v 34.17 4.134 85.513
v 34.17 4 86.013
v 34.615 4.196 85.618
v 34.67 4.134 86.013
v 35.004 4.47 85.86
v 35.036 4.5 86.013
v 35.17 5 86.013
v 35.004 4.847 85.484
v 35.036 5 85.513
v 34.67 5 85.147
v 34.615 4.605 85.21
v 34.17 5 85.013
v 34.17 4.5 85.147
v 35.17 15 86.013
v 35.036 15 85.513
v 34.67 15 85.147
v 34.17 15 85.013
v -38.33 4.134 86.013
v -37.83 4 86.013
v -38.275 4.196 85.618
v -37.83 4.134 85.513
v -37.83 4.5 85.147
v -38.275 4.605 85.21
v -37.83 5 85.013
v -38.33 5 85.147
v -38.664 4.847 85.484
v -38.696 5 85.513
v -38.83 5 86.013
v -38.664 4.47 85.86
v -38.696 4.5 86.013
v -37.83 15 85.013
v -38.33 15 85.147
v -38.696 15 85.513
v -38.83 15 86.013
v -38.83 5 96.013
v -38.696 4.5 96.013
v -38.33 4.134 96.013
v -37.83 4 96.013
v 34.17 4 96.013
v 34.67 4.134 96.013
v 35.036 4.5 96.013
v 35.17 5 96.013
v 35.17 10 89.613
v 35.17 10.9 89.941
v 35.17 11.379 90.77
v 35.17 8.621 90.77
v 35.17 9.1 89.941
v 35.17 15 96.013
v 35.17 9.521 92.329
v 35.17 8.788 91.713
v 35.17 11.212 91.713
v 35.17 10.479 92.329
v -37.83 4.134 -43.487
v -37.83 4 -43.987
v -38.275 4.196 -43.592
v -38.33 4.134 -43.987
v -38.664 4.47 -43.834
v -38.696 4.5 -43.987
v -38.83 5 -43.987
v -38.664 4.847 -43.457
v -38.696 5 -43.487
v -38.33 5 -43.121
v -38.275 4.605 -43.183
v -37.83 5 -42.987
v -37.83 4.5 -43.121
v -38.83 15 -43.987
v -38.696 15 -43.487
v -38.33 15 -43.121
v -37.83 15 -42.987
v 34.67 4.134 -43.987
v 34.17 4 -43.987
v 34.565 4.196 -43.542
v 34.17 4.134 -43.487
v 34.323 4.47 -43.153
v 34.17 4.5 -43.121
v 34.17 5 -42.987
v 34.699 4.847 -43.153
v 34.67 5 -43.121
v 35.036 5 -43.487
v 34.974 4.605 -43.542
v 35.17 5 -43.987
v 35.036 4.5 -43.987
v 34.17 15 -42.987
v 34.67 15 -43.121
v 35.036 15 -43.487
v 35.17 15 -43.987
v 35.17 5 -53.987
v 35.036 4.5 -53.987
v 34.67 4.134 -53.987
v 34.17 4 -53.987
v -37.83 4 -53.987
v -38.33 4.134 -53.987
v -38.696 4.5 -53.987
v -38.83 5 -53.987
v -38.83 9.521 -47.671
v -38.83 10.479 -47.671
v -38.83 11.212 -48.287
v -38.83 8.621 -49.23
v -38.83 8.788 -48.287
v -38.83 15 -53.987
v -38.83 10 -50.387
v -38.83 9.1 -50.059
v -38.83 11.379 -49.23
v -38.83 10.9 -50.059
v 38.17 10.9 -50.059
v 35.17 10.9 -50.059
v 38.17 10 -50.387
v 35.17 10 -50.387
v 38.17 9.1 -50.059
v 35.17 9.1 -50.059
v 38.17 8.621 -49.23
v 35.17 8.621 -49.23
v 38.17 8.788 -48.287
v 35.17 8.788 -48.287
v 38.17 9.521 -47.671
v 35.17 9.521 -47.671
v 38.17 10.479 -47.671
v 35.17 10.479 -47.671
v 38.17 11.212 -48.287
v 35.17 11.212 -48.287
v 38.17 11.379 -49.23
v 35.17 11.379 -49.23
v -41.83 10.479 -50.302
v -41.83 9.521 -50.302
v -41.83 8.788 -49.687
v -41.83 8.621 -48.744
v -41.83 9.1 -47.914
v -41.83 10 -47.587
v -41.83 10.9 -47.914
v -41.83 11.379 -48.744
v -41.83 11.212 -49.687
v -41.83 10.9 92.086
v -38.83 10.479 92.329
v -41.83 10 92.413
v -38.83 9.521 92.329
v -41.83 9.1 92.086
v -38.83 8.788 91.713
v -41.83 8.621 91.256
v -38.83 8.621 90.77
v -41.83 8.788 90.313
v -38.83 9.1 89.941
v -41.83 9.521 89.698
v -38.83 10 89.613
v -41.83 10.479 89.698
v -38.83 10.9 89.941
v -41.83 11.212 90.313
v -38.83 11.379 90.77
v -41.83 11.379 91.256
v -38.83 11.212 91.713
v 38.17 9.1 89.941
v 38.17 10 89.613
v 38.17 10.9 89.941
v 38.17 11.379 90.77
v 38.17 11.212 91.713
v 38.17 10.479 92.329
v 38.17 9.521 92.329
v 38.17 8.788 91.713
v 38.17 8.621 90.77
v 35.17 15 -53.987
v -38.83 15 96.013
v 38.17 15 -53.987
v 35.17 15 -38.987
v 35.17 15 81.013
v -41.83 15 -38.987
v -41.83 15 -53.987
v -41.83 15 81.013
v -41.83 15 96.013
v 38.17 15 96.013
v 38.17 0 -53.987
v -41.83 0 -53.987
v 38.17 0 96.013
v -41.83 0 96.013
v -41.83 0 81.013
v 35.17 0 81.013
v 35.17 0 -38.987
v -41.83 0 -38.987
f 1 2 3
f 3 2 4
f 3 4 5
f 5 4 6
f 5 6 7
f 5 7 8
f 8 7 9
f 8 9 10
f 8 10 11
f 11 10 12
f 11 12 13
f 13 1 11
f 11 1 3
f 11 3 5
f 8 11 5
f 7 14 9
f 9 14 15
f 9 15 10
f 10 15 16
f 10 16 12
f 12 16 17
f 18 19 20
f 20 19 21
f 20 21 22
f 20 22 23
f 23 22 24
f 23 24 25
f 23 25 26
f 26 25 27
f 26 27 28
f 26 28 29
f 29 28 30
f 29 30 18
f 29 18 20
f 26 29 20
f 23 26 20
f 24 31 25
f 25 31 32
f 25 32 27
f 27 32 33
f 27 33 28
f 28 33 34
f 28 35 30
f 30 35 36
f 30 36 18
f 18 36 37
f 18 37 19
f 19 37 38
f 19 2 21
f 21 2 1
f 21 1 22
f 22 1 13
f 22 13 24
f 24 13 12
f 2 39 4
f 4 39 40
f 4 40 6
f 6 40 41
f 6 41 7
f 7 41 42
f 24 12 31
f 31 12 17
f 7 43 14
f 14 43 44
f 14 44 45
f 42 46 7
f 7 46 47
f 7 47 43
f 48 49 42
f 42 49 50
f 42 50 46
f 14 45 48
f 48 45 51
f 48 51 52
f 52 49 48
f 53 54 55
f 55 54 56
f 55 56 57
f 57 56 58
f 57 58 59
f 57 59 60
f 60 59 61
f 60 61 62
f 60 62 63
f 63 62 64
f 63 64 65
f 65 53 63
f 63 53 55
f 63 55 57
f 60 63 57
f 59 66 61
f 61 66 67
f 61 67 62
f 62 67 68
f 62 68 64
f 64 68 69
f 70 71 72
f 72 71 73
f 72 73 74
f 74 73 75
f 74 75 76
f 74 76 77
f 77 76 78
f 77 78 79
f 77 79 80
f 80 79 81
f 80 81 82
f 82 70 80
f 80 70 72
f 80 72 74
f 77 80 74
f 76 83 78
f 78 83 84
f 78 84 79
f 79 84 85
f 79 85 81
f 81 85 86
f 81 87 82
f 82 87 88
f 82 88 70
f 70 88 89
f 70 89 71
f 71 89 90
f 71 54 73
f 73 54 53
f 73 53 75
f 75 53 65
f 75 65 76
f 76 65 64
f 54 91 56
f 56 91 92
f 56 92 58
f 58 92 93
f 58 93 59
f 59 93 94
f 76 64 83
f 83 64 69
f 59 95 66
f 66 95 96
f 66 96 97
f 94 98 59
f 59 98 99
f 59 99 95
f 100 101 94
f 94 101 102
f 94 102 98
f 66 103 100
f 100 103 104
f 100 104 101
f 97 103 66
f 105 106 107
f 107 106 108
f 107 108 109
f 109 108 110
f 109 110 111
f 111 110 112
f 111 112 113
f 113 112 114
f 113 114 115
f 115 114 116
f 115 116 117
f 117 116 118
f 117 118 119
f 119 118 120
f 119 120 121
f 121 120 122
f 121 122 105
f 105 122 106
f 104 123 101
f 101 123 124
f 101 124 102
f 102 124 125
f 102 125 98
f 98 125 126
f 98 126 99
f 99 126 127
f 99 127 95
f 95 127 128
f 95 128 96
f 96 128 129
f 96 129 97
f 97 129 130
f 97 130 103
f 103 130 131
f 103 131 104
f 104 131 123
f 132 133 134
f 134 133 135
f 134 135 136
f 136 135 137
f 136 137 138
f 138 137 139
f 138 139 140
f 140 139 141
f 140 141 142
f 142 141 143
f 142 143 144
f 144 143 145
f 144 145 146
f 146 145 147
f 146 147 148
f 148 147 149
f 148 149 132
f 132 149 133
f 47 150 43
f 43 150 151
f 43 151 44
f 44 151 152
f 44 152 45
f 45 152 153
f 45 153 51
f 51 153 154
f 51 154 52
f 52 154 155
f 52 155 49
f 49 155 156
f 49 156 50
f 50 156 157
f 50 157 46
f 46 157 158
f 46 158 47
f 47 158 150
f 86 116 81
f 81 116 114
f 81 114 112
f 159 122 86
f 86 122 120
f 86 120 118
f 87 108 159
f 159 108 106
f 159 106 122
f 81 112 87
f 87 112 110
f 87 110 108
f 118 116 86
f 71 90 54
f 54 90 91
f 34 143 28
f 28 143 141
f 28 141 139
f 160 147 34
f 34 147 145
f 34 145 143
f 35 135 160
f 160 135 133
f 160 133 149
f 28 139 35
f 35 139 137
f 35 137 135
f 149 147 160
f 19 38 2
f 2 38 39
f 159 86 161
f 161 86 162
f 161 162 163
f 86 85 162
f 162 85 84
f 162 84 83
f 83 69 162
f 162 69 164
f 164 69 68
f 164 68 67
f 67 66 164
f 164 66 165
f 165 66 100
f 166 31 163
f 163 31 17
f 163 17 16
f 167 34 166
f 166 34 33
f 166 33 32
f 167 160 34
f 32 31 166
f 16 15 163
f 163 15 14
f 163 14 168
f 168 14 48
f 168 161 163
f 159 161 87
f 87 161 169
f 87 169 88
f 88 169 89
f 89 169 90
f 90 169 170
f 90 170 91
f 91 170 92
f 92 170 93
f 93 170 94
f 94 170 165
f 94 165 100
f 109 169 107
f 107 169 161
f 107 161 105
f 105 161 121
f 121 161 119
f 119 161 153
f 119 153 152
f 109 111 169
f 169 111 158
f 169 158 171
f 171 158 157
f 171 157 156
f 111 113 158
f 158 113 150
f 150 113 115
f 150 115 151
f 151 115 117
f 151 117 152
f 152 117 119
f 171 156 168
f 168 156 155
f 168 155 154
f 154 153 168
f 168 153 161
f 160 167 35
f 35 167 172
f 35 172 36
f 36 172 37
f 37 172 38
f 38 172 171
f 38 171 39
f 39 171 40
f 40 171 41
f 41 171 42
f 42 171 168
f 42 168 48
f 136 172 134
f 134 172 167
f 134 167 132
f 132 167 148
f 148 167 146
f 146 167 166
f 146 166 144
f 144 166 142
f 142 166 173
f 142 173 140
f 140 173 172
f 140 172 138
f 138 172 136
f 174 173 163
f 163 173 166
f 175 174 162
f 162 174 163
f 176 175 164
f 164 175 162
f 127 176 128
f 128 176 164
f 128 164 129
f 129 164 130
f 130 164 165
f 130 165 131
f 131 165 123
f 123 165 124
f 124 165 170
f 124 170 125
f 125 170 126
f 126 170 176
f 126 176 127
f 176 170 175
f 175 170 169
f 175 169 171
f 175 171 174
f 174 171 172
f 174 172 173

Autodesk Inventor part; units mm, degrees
ref_plane "YZ Plane" through (0, 0, 0) normal (1, 0, 0) x (0, 1, 0)
ref_plane "XZ Plane" through (0, 0, 0) normal (0, 1, 0) x (-1, 0, 0)
ref_plane "XY Plane" through (0, 0, 0) normal (0, 0, 1) x (1, 0, 0)
sketch "Sketch1" plane through (0, 0, 0) normal (0, 1, 0) x (-1, 0, 0)
  line L0 (41.8301, 96.0131) -> (-38.1699, 96.0131)
  line L1 (-38.1699, 96.0131) -> (-38.1699, -53.9869)
  line L2 (-38.1699, -53.9869) -> (41.8301, -53.9869)
  line L3 (41.8301, -53.9869) -> (41.8301, 96.0131)
  line L4 (41.8301, 81.0131) -> (-35.1699, 81.0131)
  line L5 (-35.1699, 81.0131) -> (-35.1699, -38.9869)
  line L6 (-35.1699, -38.9869) -> (41.8301, -38.9869)
  line L7 (41.8301, -38.9869) -> (41.8301, 81.0131)
  point P0 (0, 0)
  dimension "d0" = 80
  dimension "d1" = 150
  dimension "d2" = 15
  dimension "d3" = 15
  dimension "d4" = 3
extrude "Extrusion1" add sketch "Sketch1" along normal blind 15 contours L3 L4 L5 L6 L2 L1 L0
sketch "Sketch2" plane through (0, 15, 0) normal (0, 1, 0) x (1, 0, 0)
  line L0 (-41.8301, -96.0131) -> (38.1699, -96.0131) projected
  line L1 (-38.8301, -96.0131) -> (35.1699, -96.0131)
  line L2 (35.1699, -96.0131) -> (35.1699, -85.0131)
  line L3 (35.1699, -85.0131) -> (-38.8301, -85.0131)
  line L4 (-38.8301, -85.0131) -> (-38.8301, -96.0131)
  line L5 (38.1699, 53.9869) -> (-41.8301, 53.9869) projected
  line L6 (-38.8301, 53.9869) -> (35.1699, 53.9869)
  line L7 (35.1699, 53.9869) -> (35.1699, 42.9869)
  line L8 (35.1699, 42.9869) -> (-38.8301, 42.9869)
  line L9 (-38.8301, 42.9869) -> (-38.8301, 53.9869)
  line L10 (35.1699, -81.0131) -> (-41.8301, -81.0131) projected
  line L11 (-41.8301, 38.9869) -> (35.1699, 38.9869) projected
  line L12 (-41.8301, 53.9869) -> (-41.8301, 38.9869) projected
  point P0 (0, 0)
  point P1 (35.1699, -96.0131)
  dimension "d7" = 4
  dimension "d8" = 4
  dimension "d9" = 3
extrude "Extrusion2" cut sketch "Sketch2" against normal blind 11
sketch "Sketch3" plane through (-41.8301, 0, -53.9869) normal (-1, 0, 0) x (0, 0, 1)
  circle A0 centre (5, 10) radius 1.4
  circle A1 centre (145, 10) radius 1.4
  line L0 (11, 15) -> (11, 4) projected
  line L1 (11, 4) -> (0, 4) projected
  line L2 (139, 15) -> (139, 4) projected
  line L3 (150, 4) -> (139, 4) projected
  point P0 (53.9869, 0)
  dimension "d12" = 2.8
  dimension "d13" = 2.8
  dimension "d14" = 6
  dimension "d15" = 6
  dimension "d16" = 6
  dimension "d17" = 6
extrude "Extrusion3" cut sketch "Sketch3" against normal through all
fillet "Fillet1" radius 1 5 edges at (-1.8301, 4, -42.9869) (-38.8301, 9.5, -42.9869) (-38.8301, 4, -48.4869) (35.1699, 4, -48.4869) (35.1699, 9.5, -42.9869)
fillet "Fillet2" radius 1 5 edges at (-38.8301, 9.5, 85.0131) (-38.8301, 4, 90.5131) (-1.8301, 4, 85.0131) (35.1699, 9.5, 85.0131) (35.1699, 4, 90.5131)
properties part number "leg_8u"
